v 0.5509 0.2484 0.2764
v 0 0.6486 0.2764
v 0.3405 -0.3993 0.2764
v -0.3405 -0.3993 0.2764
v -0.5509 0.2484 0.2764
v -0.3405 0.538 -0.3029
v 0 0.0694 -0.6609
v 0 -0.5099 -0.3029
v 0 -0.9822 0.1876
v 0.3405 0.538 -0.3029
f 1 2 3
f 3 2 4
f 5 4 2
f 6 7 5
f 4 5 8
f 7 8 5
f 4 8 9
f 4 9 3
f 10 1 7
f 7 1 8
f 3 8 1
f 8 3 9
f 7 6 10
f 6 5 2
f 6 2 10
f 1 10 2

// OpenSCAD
polyhedron( points = [[-0.340470637713848, -0.39925597108531, 0.276374725012181], [7.22347270041816e-12, -0.509881587241001, -0.302868521349847], [-8.31838269550085e-12, 0.069361659242004, -0.660860535295761], [-0.340470637711721, 0.537979289408292, -0.302868521262115], [-0.550893063977029, 0.248357666196075, 0.276374725012181], [0.340470637692994, -0.39925597108531, 0.276374725012181], [0.550893063988322, 0.248357666097143, 0.276374725012181], [0.340470637679453, 0.537979289358358, -0.302868521178116], [4.15851095073629e-11, 0.648604905498083, 0.276374725012181], [1.34007971917668e-12, -0.982246946388333, 0.187592474024934]], faces = [[0, 5, 6, 8, 4], [0, 4, 3, 2, 1], [0, 1, 9], [0, 9, 5], [1, 2, 7, 6, 5], [1, 5, 9], [2, 3, 7], [3, 4, 8], [3, 8, 7], [6, 7, 8]]);
